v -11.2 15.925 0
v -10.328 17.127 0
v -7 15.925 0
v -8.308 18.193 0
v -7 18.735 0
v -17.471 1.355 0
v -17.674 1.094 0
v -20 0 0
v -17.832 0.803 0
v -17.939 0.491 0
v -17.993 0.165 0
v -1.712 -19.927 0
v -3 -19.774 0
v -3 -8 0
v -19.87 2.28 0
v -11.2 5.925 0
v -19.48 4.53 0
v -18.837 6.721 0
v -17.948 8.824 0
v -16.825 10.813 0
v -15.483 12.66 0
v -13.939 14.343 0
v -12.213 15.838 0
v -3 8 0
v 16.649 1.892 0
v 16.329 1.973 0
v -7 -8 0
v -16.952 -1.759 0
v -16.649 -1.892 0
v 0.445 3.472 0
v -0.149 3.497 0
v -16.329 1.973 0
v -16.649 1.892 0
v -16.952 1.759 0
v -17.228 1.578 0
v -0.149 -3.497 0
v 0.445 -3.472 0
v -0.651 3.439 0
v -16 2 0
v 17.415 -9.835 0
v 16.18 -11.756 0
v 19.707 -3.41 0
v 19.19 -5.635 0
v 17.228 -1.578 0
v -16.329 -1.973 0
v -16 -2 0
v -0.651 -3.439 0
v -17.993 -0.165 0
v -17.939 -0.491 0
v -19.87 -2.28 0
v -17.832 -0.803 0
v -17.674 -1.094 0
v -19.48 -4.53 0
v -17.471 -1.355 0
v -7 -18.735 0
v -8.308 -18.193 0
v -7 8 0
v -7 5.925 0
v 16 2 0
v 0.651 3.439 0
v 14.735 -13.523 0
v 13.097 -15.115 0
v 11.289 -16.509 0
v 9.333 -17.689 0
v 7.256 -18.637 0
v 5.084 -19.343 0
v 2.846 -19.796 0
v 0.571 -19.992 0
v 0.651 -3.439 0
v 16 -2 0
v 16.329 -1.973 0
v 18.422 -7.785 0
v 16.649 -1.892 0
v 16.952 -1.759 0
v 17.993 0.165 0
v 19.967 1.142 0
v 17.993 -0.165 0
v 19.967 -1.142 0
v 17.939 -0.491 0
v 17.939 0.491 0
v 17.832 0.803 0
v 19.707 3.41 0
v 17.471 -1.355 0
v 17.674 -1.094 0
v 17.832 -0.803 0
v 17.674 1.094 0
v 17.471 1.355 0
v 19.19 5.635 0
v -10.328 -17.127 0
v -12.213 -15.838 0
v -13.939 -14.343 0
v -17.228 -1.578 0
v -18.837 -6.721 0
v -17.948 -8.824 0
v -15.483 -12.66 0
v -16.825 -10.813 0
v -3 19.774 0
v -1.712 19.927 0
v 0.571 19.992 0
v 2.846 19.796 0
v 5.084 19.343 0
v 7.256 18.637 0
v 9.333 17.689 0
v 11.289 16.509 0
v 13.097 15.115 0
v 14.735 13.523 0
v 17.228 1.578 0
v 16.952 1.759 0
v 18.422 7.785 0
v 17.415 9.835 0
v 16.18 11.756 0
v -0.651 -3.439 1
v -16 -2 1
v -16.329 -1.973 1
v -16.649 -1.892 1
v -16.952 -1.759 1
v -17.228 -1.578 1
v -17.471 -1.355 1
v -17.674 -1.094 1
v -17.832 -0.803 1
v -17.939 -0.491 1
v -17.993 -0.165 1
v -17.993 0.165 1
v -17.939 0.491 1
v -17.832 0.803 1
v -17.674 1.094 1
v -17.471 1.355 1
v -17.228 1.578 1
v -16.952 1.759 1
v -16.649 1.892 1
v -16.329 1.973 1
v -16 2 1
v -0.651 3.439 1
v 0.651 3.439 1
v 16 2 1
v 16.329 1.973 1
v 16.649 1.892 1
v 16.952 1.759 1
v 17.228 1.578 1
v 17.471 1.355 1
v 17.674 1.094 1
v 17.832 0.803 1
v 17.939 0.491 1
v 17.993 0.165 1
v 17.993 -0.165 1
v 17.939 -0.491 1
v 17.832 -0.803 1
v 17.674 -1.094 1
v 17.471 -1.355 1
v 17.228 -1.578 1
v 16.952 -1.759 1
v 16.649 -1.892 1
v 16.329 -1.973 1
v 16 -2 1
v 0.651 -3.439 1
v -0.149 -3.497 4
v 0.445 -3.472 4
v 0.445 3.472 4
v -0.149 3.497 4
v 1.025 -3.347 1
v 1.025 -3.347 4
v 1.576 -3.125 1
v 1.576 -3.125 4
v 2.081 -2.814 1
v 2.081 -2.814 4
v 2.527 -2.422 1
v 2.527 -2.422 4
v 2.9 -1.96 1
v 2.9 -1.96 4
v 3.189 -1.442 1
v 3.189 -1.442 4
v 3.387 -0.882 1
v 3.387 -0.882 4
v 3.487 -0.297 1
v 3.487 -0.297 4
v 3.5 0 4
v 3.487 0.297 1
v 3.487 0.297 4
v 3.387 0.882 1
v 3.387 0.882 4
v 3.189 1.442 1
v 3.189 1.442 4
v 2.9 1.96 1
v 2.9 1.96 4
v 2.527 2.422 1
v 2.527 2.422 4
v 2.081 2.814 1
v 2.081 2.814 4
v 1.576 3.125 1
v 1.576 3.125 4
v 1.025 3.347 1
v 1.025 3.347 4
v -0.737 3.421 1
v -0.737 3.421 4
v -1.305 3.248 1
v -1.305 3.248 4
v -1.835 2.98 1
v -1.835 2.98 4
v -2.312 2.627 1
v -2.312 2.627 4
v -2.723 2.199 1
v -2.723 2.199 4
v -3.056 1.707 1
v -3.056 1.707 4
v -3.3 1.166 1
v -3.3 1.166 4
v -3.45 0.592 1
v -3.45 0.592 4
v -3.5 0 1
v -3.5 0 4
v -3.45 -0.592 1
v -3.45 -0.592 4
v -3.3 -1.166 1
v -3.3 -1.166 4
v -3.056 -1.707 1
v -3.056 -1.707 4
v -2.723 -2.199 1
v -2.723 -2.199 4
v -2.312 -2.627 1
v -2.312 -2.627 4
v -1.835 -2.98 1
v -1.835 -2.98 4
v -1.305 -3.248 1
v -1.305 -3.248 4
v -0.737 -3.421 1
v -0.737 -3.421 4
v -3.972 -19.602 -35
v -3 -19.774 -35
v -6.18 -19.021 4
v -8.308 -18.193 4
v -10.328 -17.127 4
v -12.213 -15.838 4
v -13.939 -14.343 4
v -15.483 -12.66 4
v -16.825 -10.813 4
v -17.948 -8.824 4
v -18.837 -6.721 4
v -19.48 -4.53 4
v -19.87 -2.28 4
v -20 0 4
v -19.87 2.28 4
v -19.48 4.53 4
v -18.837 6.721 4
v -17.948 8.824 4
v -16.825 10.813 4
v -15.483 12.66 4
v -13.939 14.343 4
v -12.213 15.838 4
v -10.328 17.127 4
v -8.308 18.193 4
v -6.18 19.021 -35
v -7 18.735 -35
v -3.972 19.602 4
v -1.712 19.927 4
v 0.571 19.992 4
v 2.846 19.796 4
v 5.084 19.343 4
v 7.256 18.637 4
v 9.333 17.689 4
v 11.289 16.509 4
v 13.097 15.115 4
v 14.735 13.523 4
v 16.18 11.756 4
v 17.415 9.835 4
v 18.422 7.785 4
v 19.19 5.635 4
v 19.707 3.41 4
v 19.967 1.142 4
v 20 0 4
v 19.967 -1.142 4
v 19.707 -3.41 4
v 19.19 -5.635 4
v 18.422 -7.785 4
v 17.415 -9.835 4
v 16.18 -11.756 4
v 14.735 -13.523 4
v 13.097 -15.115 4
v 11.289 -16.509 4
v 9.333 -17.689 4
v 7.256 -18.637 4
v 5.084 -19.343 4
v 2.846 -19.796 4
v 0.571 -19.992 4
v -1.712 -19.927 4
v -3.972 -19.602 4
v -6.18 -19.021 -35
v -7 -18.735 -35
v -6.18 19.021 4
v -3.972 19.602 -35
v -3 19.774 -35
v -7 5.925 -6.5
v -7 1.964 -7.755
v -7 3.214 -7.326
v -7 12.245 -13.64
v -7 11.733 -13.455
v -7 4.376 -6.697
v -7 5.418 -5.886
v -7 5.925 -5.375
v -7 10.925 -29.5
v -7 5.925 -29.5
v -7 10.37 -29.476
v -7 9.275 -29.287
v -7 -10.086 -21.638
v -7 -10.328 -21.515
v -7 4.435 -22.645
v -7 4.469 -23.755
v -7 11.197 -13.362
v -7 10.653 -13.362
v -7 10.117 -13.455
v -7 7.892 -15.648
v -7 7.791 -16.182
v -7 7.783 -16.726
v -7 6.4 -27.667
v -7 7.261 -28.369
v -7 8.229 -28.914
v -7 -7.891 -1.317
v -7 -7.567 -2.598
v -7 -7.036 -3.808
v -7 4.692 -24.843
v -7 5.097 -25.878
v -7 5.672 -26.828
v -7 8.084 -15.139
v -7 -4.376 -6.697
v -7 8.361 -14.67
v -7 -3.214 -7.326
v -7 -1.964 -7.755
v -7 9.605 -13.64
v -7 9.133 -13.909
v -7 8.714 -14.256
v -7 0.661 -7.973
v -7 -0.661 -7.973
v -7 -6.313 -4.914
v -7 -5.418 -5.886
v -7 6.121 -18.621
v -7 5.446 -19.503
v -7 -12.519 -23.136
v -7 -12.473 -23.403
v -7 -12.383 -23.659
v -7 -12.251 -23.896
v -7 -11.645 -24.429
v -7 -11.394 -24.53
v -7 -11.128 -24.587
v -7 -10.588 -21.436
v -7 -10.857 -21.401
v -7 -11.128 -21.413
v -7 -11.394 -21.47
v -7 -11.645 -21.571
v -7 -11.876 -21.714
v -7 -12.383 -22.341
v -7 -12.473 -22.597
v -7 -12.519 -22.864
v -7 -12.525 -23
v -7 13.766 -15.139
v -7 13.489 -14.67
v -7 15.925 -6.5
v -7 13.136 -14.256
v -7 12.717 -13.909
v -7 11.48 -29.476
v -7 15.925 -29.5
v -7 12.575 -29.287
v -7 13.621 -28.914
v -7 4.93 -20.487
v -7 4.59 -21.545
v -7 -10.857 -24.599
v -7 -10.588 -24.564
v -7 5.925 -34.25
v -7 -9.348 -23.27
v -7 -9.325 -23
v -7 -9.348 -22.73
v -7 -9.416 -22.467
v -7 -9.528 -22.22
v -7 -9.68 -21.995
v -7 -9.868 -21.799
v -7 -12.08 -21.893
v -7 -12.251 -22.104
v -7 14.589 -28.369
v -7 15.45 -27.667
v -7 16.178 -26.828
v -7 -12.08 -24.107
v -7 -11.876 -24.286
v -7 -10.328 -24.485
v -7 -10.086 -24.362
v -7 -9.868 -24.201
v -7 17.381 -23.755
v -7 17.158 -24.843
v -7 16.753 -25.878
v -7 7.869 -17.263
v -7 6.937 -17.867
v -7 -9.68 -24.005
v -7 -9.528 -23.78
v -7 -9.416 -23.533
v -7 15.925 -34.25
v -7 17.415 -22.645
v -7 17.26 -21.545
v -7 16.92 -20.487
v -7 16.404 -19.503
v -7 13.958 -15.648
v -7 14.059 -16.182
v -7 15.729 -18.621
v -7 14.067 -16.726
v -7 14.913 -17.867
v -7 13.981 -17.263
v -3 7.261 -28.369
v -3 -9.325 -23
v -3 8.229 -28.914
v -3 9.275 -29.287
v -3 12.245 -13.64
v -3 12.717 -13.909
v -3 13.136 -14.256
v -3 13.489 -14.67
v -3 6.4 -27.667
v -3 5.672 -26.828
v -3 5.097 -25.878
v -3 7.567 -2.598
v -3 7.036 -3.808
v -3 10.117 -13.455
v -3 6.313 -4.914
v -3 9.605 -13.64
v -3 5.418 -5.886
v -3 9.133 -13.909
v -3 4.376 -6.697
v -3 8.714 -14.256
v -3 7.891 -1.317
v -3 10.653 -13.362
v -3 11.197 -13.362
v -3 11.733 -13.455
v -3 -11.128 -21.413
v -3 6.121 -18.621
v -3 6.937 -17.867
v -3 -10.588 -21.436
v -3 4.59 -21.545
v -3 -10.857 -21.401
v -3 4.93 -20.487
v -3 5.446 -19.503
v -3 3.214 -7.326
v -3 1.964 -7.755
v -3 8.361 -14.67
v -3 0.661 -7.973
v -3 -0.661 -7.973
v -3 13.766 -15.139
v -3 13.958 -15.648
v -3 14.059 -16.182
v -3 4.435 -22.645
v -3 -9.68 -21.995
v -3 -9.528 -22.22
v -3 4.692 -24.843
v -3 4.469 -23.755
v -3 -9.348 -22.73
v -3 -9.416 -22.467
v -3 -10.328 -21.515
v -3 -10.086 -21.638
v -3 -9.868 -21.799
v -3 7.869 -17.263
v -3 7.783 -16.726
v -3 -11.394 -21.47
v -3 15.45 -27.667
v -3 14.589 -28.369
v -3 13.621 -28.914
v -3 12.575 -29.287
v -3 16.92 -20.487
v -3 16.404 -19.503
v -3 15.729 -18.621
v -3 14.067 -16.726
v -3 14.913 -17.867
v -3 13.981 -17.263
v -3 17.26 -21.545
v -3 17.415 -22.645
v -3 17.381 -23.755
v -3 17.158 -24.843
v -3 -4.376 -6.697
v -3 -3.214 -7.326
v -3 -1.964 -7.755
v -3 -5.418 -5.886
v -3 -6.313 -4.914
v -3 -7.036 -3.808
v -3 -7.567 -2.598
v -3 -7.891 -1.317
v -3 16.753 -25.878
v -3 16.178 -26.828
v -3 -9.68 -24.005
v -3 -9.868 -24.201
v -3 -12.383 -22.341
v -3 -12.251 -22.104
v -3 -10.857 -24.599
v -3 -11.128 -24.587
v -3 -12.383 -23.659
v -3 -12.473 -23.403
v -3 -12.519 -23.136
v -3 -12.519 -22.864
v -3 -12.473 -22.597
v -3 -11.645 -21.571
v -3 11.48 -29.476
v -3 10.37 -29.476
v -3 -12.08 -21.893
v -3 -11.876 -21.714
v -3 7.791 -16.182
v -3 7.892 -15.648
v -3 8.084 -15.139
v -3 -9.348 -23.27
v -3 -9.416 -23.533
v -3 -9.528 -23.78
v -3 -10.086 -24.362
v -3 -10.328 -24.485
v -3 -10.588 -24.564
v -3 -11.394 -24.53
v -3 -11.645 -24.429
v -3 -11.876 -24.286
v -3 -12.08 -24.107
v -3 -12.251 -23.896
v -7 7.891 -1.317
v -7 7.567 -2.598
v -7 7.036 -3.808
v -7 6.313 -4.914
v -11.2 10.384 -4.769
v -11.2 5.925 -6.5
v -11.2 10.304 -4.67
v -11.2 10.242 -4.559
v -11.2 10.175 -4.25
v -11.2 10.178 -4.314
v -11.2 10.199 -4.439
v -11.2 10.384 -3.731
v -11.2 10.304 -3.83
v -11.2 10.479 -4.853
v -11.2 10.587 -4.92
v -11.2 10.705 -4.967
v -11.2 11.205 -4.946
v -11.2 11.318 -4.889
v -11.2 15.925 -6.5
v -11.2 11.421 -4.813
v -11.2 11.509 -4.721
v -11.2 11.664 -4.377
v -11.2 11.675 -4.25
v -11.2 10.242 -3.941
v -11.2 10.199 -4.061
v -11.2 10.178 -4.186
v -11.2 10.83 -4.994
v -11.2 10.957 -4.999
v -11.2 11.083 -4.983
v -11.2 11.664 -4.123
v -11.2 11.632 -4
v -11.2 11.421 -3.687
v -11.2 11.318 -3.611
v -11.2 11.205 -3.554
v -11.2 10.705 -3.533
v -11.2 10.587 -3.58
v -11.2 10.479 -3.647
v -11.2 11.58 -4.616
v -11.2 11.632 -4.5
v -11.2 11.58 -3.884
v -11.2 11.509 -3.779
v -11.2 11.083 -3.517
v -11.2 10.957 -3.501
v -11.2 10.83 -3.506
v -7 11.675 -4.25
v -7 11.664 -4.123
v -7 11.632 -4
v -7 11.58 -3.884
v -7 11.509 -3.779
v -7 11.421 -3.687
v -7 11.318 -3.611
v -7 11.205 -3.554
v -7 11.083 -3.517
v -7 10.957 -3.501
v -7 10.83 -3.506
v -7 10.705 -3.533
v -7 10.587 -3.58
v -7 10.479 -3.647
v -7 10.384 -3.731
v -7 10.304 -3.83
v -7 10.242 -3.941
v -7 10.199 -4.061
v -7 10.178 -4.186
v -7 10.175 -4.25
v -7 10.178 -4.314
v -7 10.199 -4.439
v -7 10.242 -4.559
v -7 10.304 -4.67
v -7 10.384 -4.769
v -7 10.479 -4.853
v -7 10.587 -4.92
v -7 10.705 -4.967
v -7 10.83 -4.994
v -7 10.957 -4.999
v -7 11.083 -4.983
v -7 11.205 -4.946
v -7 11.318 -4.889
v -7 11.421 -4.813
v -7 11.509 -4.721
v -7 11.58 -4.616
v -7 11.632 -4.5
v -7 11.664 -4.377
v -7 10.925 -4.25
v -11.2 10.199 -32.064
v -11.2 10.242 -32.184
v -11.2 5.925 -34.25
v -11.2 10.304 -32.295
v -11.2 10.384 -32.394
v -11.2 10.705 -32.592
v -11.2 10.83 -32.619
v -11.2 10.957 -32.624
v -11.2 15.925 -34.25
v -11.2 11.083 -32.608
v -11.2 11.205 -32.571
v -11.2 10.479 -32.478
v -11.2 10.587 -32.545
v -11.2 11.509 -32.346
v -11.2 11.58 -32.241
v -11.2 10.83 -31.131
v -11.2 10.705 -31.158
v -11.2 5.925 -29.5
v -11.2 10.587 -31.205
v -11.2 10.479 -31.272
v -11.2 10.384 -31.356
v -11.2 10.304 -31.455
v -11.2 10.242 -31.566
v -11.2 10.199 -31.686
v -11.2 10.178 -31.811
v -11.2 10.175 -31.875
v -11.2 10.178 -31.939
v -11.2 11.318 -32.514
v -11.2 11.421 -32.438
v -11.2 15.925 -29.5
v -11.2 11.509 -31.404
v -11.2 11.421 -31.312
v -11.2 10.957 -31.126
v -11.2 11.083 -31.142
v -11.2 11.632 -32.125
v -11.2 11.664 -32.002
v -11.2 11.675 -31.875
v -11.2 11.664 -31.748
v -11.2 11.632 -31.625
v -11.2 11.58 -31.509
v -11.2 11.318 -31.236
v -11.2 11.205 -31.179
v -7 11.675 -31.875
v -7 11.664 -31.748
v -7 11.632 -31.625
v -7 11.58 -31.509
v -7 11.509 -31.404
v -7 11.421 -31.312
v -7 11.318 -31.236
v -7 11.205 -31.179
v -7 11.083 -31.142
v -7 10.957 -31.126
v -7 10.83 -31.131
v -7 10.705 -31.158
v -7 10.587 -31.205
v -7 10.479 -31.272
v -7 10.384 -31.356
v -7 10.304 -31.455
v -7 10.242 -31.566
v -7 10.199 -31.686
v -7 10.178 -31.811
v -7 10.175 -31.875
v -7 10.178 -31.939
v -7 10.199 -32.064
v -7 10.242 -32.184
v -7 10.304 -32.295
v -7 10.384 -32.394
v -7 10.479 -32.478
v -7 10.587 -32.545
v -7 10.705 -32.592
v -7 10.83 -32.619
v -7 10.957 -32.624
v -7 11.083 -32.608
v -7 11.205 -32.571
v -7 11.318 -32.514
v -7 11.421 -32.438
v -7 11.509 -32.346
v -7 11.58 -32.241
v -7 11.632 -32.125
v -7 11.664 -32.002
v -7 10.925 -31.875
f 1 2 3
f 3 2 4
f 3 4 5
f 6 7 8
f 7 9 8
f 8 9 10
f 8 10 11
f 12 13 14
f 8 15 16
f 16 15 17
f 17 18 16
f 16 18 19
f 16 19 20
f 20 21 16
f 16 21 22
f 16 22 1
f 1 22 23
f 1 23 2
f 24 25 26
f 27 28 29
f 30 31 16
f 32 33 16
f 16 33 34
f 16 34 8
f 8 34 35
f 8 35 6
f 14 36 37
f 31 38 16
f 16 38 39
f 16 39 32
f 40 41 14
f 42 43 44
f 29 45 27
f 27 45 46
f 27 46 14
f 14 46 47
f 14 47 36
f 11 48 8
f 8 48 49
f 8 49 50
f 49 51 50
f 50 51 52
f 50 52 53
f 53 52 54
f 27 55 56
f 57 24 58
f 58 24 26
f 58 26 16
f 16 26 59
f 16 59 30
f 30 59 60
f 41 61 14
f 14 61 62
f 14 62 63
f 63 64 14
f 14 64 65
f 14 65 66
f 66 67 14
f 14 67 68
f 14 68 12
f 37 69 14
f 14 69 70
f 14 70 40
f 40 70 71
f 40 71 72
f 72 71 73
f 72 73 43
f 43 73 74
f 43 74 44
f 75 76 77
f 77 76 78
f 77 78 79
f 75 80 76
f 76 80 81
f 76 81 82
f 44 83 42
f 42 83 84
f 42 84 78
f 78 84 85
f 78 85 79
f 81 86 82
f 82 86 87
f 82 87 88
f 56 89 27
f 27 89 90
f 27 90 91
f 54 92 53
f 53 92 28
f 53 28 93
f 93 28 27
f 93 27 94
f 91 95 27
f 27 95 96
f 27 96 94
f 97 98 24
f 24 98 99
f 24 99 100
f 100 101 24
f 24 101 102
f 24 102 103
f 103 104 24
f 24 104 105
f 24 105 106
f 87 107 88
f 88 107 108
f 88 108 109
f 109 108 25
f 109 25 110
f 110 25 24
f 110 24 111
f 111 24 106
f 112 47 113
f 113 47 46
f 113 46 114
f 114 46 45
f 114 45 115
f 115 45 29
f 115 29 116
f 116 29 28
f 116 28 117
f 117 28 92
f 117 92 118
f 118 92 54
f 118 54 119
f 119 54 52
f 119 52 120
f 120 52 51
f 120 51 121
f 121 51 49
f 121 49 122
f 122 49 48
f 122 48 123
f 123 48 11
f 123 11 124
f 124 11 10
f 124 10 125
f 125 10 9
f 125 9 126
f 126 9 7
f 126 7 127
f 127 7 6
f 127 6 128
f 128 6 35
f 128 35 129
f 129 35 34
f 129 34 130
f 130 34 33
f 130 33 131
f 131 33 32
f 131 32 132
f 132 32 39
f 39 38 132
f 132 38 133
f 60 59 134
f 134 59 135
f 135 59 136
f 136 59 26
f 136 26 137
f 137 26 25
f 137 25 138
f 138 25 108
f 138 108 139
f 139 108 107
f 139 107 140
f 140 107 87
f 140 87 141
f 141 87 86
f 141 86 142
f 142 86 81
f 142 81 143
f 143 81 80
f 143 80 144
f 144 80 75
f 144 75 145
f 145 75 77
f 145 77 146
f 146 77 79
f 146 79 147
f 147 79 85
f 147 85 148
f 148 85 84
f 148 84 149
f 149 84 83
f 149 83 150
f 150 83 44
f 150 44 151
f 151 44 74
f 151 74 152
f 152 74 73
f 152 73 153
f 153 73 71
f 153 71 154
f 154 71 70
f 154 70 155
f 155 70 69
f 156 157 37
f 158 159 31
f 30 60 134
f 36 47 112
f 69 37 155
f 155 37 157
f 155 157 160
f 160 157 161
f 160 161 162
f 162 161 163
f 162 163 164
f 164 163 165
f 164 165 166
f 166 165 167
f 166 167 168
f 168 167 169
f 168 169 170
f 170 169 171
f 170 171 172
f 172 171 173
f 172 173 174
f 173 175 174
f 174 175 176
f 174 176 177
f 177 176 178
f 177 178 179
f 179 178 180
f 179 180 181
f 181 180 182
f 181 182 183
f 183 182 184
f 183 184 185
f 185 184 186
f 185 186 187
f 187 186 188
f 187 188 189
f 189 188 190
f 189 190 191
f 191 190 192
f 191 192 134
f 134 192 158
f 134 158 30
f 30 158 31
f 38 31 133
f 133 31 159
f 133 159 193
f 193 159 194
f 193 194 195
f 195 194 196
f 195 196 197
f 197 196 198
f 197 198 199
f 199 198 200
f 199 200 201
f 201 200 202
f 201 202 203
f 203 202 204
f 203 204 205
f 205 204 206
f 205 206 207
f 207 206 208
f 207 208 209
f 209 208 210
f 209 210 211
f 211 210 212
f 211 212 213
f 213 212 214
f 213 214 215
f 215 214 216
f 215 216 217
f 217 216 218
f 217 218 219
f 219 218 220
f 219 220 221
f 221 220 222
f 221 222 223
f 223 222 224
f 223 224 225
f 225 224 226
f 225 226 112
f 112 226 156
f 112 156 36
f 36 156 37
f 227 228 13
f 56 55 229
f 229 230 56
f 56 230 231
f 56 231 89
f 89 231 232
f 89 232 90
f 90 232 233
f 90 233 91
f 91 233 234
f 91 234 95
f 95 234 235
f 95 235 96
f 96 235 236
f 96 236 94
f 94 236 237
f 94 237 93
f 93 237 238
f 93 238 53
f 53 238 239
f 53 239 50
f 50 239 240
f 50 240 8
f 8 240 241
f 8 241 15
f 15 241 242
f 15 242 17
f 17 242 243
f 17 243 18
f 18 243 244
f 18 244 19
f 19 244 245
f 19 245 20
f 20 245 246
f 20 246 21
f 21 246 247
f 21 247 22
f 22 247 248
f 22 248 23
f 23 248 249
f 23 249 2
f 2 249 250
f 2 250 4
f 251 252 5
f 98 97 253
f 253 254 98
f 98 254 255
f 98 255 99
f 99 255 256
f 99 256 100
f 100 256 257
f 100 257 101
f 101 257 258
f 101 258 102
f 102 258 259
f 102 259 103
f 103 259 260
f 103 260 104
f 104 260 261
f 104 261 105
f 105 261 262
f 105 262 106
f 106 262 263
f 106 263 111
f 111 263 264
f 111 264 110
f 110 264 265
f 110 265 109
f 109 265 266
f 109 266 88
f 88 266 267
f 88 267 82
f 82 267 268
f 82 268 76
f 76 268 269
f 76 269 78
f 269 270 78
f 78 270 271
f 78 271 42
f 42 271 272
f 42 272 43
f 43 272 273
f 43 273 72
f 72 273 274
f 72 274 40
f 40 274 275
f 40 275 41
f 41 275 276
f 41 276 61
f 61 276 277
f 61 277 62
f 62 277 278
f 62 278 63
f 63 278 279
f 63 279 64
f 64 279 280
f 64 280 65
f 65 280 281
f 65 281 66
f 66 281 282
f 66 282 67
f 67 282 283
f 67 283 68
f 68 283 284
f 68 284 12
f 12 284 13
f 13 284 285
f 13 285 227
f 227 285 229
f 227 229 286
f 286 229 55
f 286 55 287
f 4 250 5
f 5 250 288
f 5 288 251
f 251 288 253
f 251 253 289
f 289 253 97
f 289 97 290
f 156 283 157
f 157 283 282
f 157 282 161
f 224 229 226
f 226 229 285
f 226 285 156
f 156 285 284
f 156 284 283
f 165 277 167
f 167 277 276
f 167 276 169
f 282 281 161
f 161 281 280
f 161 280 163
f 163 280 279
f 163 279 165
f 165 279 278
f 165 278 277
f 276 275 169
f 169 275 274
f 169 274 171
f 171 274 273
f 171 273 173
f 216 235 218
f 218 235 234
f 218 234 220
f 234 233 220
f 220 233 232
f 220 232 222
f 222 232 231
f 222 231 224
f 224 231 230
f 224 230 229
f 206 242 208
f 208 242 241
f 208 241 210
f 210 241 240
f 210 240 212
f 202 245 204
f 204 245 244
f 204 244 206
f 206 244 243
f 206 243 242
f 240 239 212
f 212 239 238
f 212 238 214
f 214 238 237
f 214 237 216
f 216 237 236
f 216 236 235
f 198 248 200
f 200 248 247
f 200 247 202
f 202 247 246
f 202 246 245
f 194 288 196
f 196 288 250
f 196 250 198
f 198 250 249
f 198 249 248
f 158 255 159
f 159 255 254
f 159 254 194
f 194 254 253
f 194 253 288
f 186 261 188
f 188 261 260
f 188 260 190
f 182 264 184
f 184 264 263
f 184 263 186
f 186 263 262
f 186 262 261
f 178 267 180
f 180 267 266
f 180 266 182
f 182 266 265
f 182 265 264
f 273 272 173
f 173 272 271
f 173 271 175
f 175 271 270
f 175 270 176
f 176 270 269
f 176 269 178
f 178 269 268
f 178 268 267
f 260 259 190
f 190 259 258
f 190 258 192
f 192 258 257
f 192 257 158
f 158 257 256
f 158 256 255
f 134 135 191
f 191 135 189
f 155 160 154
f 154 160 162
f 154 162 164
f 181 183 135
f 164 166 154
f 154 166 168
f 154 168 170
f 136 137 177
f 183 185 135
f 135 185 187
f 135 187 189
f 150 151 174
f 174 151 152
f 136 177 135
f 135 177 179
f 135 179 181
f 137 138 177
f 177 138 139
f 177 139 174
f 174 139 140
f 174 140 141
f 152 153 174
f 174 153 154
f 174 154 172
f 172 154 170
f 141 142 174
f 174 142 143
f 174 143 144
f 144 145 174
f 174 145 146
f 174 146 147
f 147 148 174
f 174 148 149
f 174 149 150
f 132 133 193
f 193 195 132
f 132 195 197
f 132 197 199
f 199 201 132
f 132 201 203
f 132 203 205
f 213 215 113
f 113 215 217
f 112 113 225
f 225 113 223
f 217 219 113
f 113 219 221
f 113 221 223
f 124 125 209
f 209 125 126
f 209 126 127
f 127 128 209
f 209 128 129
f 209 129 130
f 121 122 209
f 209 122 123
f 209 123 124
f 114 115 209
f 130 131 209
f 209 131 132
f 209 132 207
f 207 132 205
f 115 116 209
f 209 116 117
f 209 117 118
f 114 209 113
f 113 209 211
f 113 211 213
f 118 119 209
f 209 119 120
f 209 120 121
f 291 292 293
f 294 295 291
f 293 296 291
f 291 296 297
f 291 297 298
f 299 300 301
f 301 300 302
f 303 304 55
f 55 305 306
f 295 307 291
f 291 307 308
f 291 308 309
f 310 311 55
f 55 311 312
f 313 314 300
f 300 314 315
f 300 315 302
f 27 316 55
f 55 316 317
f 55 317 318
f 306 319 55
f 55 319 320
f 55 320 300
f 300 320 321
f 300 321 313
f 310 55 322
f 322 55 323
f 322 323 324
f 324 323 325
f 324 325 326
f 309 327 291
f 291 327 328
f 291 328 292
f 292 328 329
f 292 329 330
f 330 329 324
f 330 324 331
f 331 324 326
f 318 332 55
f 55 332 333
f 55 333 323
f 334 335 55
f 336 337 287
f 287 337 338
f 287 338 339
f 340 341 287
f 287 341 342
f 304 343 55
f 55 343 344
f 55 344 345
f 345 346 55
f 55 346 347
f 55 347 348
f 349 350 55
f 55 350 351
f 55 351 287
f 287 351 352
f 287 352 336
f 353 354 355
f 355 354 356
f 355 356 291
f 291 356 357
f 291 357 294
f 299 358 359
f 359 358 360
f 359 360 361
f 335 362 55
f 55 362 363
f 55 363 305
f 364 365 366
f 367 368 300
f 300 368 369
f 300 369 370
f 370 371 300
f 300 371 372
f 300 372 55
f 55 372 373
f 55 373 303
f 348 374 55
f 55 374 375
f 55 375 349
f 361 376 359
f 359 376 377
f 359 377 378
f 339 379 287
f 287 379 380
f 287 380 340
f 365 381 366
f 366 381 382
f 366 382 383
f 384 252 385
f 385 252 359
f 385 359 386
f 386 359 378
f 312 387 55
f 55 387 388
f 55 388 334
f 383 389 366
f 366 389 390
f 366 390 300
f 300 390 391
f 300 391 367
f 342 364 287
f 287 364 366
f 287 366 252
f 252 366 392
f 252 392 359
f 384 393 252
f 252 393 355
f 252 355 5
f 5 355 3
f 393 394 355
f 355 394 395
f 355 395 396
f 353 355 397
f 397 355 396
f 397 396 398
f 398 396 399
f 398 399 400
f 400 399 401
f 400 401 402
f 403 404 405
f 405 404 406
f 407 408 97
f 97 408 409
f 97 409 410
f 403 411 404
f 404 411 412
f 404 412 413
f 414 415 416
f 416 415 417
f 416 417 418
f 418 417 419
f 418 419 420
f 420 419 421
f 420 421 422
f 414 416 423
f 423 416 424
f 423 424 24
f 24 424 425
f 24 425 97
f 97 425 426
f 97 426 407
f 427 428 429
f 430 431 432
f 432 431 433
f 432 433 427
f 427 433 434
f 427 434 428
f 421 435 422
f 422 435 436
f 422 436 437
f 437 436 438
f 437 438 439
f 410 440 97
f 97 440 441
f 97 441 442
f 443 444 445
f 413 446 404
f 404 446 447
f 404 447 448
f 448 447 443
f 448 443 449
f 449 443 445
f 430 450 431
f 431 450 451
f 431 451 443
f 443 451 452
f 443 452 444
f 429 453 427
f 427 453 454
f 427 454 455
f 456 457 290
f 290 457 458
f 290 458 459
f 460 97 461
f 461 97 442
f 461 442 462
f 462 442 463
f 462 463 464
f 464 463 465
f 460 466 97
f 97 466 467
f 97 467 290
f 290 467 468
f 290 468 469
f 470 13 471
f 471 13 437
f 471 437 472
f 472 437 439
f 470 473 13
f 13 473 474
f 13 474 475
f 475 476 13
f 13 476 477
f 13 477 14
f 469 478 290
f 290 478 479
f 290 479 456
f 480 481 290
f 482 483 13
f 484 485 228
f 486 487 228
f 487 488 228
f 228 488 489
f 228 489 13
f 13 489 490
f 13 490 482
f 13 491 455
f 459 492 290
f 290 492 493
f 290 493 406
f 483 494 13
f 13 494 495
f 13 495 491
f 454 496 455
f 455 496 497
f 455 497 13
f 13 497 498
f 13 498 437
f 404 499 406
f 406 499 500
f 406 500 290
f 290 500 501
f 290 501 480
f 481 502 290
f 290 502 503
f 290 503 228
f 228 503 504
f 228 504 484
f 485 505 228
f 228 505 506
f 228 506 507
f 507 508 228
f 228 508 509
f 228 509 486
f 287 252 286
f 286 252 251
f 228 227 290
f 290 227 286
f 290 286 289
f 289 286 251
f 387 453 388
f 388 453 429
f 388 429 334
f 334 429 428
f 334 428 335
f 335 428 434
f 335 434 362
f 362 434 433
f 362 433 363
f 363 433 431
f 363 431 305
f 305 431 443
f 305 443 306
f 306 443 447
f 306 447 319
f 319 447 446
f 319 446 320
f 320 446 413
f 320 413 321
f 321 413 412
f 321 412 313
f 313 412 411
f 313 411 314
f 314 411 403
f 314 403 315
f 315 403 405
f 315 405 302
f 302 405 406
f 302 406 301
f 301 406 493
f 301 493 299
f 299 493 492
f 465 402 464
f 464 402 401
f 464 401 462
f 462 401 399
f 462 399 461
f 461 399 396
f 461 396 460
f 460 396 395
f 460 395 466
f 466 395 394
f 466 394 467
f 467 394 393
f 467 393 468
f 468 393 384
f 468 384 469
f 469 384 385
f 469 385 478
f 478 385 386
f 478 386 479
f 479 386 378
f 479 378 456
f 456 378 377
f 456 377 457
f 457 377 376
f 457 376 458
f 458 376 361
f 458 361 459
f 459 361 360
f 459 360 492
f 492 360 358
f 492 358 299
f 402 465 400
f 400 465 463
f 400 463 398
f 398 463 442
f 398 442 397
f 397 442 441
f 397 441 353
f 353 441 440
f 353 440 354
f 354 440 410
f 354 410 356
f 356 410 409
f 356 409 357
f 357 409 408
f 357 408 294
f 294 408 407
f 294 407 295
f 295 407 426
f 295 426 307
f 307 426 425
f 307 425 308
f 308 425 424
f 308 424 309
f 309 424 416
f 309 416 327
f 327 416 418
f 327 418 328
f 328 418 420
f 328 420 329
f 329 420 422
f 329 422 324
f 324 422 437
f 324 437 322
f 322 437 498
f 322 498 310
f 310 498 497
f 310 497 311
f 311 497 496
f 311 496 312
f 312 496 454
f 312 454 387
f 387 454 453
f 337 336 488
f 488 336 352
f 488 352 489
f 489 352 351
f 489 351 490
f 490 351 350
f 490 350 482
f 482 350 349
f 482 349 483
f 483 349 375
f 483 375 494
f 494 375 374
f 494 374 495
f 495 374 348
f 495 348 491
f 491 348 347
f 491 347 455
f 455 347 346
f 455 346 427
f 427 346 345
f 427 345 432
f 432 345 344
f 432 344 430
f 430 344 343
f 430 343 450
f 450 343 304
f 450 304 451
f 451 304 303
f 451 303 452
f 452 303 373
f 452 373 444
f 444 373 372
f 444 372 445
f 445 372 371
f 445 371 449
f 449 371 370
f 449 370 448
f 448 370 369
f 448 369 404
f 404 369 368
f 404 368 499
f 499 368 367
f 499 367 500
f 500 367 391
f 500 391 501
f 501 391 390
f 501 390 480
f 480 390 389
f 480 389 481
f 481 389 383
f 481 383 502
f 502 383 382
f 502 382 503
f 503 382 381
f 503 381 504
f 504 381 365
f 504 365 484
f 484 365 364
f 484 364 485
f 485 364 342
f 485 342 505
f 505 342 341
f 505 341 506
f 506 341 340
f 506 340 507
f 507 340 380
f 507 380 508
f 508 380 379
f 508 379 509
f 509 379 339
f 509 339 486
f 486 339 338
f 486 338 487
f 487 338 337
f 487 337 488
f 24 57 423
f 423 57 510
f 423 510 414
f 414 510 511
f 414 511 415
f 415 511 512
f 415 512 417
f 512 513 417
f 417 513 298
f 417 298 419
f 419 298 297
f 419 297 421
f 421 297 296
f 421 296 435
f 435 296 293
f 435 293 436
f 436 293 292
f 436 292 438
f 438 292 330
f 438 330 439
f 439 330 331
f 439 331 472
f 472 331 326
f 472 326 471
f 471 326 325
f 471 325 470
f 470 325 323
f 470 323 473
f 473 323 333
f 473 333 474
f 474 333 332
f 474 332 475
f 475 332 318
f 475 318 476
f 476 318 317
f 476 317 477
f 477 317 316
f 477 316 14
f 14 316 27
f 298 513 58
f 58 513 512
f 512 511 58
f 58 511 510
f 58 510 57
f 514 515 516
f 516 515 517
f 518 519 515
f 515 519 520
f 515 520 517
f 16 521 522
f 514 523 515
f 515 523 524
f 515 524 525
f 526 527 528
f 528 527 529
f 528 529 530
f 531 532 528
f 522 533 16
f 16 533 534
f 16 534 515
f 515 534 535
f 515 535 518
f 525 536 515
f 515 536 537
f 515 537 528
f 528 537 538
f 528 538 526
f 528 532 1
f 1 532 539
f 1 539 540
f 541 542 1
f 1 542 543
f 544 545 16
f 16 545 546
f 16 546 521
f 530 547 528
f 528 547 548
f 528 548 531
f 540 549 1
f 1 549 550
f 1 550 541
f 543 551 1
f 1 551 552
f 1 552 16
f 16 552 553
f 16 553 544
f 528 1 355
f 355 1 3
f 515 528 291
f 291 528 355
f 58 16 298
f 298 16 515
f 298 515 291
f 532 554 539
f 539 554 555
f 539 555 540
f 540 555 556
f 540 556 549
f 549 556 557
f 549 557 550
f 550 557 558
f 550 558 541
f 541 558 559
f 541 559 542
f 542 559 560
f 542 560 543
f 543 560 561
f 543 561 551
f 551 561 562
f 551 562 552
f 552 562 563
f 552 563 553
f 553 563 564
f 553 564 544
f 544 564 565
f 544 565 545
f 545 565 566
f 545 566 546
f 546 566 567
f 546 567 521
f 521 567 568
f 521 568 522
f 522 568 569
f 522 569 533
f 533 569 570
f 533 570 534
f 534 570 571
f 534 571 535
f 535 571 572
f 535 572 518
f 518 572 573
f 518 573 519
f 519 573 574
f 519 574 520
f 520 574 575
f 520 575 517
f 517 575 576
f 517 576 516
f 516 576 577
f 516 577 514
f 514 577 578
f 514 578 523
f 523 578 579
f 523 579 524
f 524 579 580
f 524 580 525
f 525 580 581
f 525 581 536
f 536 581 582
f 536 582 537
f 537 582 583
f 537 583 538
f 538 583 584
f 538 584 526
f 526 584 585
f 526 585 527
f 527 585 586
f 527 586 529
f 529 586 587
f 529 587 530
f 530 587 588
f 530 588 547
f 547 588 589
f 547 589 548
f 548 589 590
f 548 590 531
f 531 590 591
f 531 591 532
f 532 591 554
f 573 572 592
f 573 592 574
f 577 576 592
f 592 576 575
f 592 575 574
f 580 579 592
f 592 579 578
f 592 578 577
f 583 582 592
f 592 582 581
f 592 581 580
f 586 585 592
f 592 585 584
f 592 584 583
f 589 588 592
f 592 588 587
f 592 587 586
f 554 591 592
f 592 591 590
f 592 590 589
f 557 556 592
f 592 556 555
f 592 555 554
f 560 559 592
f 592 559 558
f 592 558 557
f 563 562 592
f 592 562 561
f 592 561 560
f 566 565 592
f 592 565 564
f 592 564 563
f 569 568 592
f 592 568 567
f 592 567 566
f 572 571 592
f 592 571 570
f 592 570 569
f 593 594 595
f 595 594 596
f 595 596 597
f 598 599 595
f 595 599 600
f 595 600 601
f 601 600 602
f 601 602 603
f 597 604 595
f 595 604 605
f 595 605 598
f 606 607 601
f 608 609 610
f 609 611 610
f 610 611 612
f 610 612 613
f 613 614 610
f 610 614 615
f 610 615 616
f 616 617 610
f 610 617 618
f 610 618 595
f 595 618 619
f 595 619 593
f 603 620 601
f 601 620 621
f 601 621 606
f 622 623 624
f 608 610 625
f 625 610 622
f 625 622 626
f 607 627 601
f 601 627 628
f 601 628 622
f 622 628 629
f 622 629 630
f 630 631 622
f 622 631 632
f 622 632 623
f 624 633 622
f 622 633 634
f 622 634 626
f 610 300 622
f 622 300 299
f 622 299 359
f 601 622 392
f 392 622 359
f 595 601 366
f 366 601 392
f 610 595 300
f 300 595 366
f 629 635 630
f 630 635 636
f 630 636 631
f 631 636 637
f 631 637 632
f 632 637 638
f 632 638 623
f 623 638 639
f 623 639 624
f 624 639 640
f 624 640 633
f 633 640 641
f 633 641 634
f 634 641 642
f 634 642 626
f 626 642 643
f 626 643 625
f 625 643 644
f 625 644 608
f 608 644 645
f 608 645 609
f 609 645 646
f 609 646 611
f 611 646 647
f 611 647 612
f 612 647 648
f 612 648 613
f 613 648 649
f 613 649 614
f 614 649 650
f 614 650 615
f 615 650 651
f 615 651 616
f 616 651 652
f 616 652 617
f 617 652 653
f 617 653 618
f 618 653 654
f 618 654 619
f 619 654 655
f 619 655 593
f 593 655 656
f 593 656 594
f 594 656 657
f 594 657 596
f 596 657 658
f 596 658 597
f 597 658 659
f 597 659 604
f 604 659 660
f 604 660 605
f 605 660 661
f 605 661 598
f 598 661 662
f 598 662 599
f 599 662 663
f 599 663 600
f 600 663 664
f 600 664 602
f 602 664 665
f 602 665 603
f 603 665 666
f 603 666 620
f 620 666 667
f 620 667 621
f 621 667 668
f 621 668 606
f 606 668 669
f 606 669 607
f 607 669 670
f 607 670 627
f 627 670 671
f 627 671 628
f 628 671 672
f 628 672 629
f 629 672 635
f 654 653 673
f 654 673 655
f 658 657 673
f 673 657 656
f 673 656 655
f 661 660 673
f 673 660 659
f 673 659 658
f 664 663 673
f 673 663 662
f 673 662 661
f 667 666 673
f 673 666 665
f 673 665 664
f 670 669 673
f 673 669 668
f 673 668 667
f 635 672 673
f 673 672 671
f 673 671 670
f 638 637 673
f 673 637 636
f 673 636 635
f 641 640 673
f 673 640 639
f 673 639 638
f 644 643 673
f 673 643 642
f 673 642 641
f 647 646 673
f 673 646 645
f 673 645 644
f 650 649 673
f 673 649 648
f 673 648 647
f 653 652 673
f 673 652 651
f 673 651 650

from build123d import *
from build123d.topology import SkipClean

# Parameters (mm, degrees)
ESBO_O1_R                = 20
RESSALTO_EXTRUS_O1_DEPTH = 4
RESSALTO_EXTRUS_O2_START = -3
ESBO_O2_R                = 3.5
RESSALTO_EXTRUS_O2_DEPTH = 3
RESSALTO_EXTRUS_O4_DEPTH = 35
ESBO_O4_R                = 1.6
CORTE_EXTRUS_O1_DEPTH    = 10
CORTE_EXTRUS_O3_DEPTH    = 8
ESBO_O10_W               = 6.5
ESBO_O10_H               = 10
ESBO_O10_R               = 0.75
ESBO_O10_W_2             = 4.75
RESSALTO_EXTRUS_O5_DEPTH = 4.2


# Read off the part's stored shape, not the designer's step: Ressalto-extrusão4
with BuildPart() as part:
    # Esboço1 → Ressalto-extrusão1 (new body)
    with BuildSketch(Plane.XY):
        Circle(ESBO_O1_R)
        with BuildLine():
            ThreePointArc((-16, -2), (-18, 0), (-16, 2))
            Line((-16, 2), (-0.65053243, 3.439012585))
            ThreePointArc((-0.65053243, 3.439012585), (-0.32669248, 3.484719791), (0, 3.5))
            ThreePointArc((0, 3.5), (0.32669248, 3.484719791), (0.65053243, 3.439012585))
            Line((0.65053243, 3.439012585), (16, 2))
            ThreePointArc((16, 2), (18, 0), (16, -2))
            Line((16, -2), (0.65053243, -3.439012585))
            ThreePointArc((0.65053243, -3.439012585), (0.32669248, -3.484719791), (0, -3.5))
            ThreePointArc((0, -3.5), (-0.32669248, -3.484719791), (-0.65053243, -3.439012585))
            Line((-0.65053243, -3.439012585), (-16, -2))
        make_face(mode=Mode.SUBTRACT)
    extrude(amount=RESSALTO_EXTRUS_O1_DEPTH)

    # Esboço2 → Ressalto-extrusão2 (add)
    with SkipClean():  # the faces are left unmerged after this step: merging them gives an invalid solid
        with BuildSketch(Plane.XY.offset(4).offset(RESSALTO_EXTRUS_O2_START)):
            with BuildLine():
                Line((-19.070572075, 6.026050177), (19.070572075, 6.026050177))
                ThreePointArc((19.070572075, 6.026050177), (20, 0), (19.070572075, -6.026050177))
                Line((19.070572075, -6.026050177), (-19.070572075, -6.026050177))
                ThreePointArc((-19.070572075, -6.026050177), (-20, 0), (-19.070572075, 6.026050177))
            make_face()
            with Locations(Location((0, 0, 0), (0, 0, 100.711650086))):
                Circle(ESBO_O2_R, mode=Mode.SUBTRACT)
        extrude(amount=RESSALTO_EXTRUS_O2_DEPTH)

    # Ressalto-extrusão4 outline → Ressalto-extrusão4 (add)
    with SkipClean():  # the faces are left unmerged after this step: merging them gives an invalid solid
        with BuildSketch(Plane(origin=(0, 0, 0), x_dir=(-1, 0, 0), z_dir=(0, 0, -1))):
            with BuildLine():
                ThreePointArc((3, -19.773719933), (5.026901421, -19.357950876), (7, -18.734993995))
                Line((7, -18.734993995), (7, 18.734993995))
                ThreePointArc((7, 18.734993995), (5.026901421, 19.357950876), (3, 19.773719933))
                Line((3, 19.773719933), (3, -19.773719933))
            make_face()
        extrude(amount=RESSALTO_EXTRUS_O4_DEPTH)

    # Esboço4 → Corte-extrusão1 (cut)
    with SkipClean():  # the faces are left unmerged after this step: merging them gives an invalid solid
        with BuildSketch(Plane(origin=(-3, 0, 0), x_dir=(0, 0, -1), z_dir=(1, 0, 0))):
            with Locations(Location((23, -10.925, 0), (0, 0, 90))):
                Circle(ESBO_O4_R)
            with BuildLine():
                ThreePointArc((17.263269231, 7.868871717), (29.5, 10.925), (17.263269231, 13.981128283))
                ThreePointArc((17.263269231, 13.981128283), (13.35, 10.925), (17.263269231, 7.868871717))
            make_face()
        extrude(amount=-CORTE_EXTRUS_O1_DEPTH, mode=Mode.SUBTRACT)

    # Esboço9 → Corte-extrusão3 (cut)
    with SkipClean():  # the faces are left unmerged after this step: merging them gives an invalid solid
        with BuildSketch(Plane.ZY.offset(7)):
            with BuildLine():
                Line((0, 8), (0, -8))
                ThreePointArc((0, -8), (-8, 0), (0, 8))
            make_face()
        extrude(amount=-CORTE_EXTRUS_O3_DEPTH, mode=Mode.SUBTRACT)

    # Esboço10 → Ressalto-extrusão5 (add)
    # profile 1 of 2: a face of its own
    with SkipClean():  # the faces are left unmerged after this step: merging them gives an invalid solid
        with BuildSketch(Plane.ZY.offset(7)):
            with Locations((-3.25, 10.925)):
                Rectangle(ESBO_O10_W, ESBO_O10_H)
            with Locations(Location((-4.25, 10.925, 0), (0, 0, 270))):
                Circle(ESBO_O10_R, mode=Mode.SUBTRACT)
        # profile 2 of 2: a face of its own
        with BuildSketch(Plane.ZY.offset(7)):
            with Locations((-31.875, 10.925)):
                Rectangle(ESBO_O10_W_2, ESBO_O10_H)
            with Locations(Location((-31.875, 10.925, 0), (0, 0, 270))):
                Circle(ESBO_O10_R, mode=Mode.SUBTRACT)
        extrude(amount=RESSALTO_EXTRUS_O5_DEPTH)


solid = part.part
